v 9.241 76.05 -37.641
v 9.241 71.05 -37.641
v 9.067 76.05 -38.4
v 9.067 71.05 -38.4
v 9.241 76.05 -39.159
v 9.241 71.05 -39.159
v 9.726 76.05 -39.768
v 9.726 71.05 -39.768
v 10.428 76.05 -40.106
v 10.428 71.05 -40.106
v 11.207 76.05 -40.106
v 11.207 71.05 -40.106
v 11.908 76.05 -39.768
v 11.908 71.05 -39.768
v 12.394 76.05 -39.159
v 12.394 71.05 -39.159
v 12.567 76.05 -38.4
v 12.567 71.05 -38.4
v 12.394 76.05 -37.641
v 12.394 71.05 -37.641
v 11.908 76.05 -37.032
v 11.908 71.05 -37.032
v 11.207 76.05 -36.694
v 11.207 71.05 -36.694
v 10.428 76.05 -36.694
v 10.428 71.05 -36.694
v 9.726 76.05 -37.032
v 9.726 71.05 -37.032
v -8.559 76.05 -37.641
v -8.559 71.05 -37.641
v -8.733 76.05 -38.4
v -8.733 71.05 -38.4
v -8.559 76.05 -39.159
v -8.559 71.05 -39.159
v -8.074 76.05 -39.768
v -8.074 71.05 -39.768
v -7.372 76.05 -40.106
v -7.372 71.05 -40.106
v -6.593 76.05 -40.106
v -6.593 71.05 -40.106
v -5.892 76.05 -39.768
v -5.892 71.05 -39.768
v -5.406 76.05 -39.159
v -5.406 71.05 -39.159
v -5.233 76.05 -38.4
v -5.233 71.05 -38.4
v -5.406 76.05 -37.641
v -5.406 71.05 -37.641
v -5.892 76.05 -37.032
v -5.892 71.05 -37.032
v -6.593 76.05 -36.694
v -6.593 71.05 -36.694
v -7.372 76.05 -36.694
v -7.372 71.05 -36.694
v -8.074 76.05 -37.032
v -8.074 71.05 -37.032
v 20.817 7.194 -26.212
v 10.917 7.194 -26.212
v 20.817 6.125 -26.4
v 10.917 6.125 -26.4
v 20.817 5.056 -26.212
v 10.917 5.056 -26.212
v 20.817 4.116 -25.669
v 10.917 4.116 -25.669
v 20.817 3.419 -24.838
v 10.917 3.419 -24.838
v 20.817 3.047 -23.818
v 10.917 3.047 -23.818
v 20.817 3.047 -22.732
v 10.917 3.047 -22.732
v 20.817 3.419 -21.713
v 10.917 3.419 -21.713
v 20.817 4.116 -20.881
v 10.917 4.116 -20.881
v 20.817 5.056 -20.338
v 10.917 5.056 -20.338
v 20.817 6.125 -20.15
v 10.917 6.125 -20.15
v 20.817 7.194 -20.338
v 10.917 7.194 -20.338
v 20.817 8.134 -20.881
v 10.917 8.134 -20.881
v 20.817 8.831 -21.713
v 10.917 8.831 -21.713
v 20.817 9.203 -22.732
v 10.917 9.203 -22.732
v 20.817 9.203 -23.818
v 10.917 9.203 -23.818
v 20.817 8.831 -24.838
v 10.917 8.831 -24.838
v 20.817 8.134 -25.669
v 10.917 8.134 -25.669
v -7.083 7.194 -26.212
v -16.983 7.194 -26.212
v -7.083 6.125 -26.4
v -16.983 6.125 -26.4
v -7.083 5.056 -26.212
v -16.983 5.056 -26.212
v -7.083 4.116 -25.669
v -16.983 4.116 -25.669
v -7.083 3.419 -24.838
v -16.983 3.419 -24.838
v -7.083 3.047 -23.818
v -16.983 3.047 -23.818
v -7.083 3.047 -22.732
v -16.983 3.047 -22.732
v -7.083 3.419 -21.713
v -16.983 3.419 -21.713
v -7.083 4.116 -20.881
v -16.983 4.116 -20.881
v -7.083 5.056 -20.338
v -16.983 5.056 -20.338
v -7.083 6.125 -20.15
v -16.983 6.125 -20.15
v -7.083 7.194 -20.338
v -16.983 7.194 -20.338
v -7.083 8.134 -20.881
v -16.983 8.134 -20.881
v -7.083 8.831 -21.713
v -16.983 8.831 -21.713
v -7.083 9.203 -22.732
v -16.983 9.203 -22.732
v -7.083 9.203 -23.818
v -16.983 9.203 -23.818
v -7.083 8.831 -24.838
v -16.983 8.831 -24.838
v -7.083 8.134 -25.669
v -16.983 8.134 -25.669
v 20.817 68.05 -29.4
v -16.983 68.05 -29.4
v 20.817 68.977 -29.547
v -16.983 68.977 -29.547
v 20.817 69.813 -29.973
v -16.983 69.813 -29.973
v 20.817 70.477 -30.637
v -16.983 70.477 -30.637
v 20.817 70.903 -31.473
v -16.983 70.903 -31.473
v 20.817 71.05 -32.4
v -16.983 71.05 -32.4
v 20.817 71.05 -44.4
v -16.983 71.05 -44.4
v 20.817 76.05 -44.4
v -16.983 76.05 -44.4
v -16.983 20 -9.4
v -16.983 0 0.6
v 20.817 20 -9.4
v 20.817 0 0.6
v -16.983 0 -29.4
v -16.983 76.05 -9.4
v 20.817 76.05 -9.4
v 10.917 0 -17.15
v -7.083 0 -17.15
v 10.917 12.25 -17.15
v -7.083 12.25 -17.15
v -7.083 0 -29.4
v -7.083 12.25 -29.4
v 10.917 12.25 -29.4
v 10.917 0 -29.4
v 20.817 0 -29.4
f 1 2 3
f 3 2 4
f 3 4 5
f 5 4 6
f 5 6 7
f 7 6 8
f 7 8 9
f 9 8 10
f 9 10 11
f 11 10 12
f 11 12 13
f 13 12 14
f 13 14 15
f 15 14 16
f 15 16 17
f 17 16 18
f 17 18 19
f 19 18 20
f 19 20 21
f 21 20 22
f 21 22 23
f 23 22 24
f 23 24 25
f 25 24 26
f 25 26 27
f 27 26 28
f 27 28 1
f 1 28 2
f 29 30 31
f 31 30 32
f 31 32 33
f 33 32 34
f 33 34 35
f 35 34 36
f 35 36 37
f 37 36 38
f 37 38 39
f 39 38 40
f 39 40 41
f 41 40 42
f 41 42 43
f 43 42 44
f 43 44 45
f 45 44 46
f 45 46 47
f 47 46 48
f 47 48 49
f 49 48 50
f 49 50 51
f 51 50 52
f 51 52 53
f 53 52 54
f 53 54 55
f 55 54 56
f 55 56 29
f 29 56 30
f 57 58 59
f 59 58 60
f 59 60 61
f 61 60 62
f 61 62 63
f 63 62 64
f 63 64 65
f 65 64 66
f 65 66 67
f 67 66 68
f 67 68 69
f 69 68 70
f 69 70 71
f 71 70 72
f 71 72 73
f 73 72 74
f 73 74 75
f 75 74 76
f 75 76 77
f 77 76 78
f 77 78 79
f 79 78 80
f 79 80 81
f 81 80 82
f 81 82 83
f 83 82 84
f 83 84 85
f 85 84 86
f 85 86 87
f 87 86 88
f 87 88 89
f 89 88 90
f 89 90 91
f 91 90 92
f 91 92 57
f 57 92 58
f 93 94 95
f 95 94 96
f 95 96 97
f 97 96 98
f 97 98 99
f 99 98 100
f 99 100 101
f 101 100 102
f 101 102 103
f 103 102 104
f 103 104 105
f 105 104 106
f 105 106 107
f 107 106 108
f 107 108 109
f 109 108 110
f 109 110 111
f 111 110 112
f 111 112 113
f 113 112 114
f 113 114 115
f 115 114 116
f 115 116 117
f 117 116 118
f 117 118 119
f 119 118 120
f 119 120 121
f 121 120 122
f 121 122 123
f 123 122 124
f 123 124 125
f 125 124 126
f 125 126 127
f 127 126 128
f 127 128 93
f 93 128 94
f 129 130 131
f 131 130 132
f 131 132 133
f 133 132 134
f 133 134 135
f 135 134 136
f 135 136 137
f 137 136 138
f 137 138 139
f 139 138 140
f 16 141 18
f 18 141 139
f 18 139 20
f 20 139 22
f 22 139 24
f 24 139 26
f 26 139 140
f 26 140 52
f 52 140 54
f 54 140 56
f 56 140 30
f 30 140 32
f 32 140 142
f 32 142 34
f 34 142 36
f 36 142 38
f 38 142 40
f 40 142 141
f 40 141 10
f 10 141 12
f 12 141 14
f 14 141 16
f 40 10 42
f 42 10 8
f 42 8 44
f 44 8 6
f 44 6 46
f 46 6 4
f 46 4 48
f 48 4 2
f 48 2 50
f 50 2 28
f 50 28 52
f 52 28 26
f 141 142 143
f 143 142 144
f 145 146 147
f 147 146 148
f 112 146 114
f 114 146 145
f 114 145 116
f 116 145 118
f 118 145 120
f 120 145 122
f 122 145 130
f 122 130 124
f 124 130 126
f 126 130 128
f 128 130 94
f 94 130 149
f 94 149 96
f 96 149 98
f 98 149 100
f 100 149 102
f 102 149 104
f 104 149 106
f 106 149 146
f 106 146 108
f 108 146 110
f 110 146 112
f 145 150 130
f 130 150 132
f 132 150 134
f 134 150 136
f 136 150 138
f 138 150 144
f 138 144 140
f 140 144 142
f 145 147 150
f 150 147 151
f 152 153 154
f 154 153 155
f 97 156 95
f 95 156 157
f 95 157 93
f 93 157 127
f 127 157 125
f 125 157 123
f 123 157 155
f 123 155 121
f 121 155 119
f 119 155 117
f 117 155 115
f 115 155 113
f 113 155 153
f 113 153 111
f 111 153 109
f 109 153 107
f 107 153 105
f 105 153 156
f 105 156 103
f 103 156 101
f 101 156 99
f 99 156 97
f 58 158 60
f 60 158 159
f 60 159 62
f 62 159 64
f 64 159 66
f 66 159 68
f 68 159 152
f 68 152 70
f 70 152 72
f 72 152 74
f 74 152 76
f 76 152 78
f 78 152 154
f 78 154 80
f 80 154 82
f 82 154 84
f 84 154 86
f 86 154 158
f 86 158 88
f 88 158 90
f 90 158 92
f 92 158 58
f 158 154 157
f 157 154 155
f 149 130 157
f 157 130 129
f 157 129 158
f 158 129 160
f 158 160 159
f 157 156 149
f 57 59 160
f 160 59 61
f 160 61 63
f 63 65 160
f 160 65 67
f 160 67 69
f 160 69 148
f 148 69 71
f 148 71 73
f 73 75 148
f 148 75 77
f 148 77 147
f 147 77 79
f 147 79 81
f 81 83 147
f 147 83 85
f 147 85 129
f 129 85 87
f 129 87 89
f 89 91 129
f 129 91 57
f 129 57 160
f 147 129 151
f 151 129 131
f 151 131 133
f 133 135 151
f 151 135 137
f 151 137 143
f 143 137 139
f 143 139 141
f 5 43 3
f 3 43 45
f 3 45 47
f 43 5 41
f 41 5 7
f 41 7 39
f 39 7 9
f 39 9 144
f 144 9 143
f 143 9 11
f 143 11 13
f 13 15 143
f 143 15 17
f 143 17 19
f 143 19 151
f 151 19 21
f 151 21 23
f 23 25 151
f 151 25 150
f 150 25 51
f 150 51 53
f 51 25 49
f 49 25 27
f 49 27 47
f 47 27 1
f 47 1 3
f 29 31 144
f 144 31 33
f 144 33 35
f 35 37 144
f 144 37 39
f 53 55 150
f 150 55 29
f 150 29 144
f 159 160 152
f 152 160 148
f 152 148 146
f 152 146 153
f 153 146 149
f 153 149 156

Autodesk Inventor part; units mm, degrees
ref_plane "YZ Plane" through (0, 0, 0) normal (1, 0, 0) x (0, 1, 0)
ref_plane "XZ Plane" through (0, 0, 0) normal (0, 1, 0) x (-1, 0, 0)
ref_plane "XY Plane" through (0, 0, 0) normal (0, 0, 1) x (1, 0, 0)
sketch "Sketch1" plane through (0, 0, 0) normal (0, 1, 0) x (-1, 0, 0)
  line L0 (16.9826, -9.4) -> (-20.8174, -9.4)
  line L1 (-20.8174, -9.4) -> (-20.8174, -29.4)
  line L2 (-20.8174, -29.4) -> (16.9826, -29.4)
  line L3 (16.9826, -29.4) -> (16.9826, -9.4)
  line L4 (7.0826, -29.4) -> (-10.9174, -29.4)
  line L5 (-10.9174, -29.4) -> (-10.9174, -17.15)
  line L6 (-10.9174, -17.15) -> (7.0826, -17.15)
  line L7 (7.0826, -17.15) -> (7.0826, -29.4)
  point P0 (0, 0)
  dimension "d0" = 37.8
  dimension "d1" = 20
  dimension "d2" = 9.9
  dimension "d3" = 9.9
  dimension "d4" = 12.25
extrude "Extrusion1" add sketch "Sketch1" along normal blind 76.05
extrude "Extrusion2" cut sketch "Sketch1" along normal blind 12.25 contours L2 L5 L6 L7
sketch "Sketch2" plane through (0, 0, 0) normal (0, -1, 0) x (1, 0, 0)
  line L0 (-16.9826, -29.4) -> (-16.9826, -9.4) projected
  line L1 (-16.9826, -9.4) -> (20.8174, -9.4)
  line L2 (20.8174, -9.4) -> (20.8174, 0.6)
  line L3 (20.8174, 0.6) -> (-16.9826, 0.6)
  line L4 (-16.9826, 0.6) -> (-16.9826, -9.4)
  point P0 (0, 0)
  dimension "d10" = 10
extrude "Extrusion3" add sketch "Sketch2" against normal blind 20
sketch "Sketch4" plane through (20.8174, 0, -29.4) normal (1, 0, 0) x (0, 0, -1)
  line L0 (0, 0) -> (-30, 0) projected
  line L1 (-30, 0) -> (-30, 20) projected
  line L2 (-30, 0) -> (-30, 20)
  line L3 (-30, 20) -> (-20, 20)
  line L4 (-30, 0) -> (-30, 20)
  line L5 (-20, 20) -> (-30, 0)
  point P0 (-29.4, 0)
  dimension "d14" = 10
extrude "Extrusion4" cut sketch "Sketch4" against normal blind 50
sketch "Sketch5" plane through (20.8174, 76.05, -29.4) normal (0, 0, -1) x (-1, 0, 0)
  line L0 (0, -76.05) -> (0, 0) projected
  line L1 (37.8, 0) -> (0, 0)
  line L2 (0, 0) -> (0, -5)
  line L3 (0, -5) -> (37.8, -5)
  line L4 (37.8, -5) -> (37.8, 0)
  point P0 (20.8174, -76.05)
  dimension "d17" = 5
extrude "Extrusion5" add sketch "Sketch5" along normal blind 15
fillet "Fillet2" radius 3 1 edges at (1.9174, 71.05, -29.4)
sketch "Sketch6" plane through (-16.9826, 0, -29.4) normal (-1, 0, 0) x (0, 0, 1)
  circle A0 centre (6.125, 6.125) radius 3.125
  line L0 (0, 0) -> (30, 0) projected
  line L1 (0, 0) -> (0, 68.05) projected
  point P0 (29.4, 0)
  dimension "d21" = 6.25
  dimension "d22" = 6.125
  dimension "d23" = 6.125
hole "Hole1" at (-16.9826, 6.125, -23.275) direction (1, 0, 0) diameter 6.25 end through all
sketch "Sketch7" plane through (-16.9826, 71.05, -44.4) normal (0, -1, 0) x (1, 0, 0)
  circle A0 centre (10, 6) radius 2.75
  circle A1 centre (27.8, 6) radius 2.75
  line L0 (0, 12) -> (0, 0) projected
  line L1 (37.8, 12) -> (37.8, 0) projected
  line L2 (37.8, 0) -> (0, 0) projected
  line L3 (0, 12) -> (37.8, 12) projected
  point P0 (16.9826, 44.4)
  point P1 (37.8, 6)
  dimension "d32" = 5.5
  dimension "d33" = 5.5
  dimension "d34" = 10
  dimension "d35" = 10
  dimension "d36" = 6
  dimension "d37" = 6
  dimension "d38" = 6
hole "Hole2" at (-6.9826, 71.05, -38.4) at (10.8174, 71.05, -38.4) direction (0, 1, 0) diameter 3.5 end through all
properties part number "legsv1"
